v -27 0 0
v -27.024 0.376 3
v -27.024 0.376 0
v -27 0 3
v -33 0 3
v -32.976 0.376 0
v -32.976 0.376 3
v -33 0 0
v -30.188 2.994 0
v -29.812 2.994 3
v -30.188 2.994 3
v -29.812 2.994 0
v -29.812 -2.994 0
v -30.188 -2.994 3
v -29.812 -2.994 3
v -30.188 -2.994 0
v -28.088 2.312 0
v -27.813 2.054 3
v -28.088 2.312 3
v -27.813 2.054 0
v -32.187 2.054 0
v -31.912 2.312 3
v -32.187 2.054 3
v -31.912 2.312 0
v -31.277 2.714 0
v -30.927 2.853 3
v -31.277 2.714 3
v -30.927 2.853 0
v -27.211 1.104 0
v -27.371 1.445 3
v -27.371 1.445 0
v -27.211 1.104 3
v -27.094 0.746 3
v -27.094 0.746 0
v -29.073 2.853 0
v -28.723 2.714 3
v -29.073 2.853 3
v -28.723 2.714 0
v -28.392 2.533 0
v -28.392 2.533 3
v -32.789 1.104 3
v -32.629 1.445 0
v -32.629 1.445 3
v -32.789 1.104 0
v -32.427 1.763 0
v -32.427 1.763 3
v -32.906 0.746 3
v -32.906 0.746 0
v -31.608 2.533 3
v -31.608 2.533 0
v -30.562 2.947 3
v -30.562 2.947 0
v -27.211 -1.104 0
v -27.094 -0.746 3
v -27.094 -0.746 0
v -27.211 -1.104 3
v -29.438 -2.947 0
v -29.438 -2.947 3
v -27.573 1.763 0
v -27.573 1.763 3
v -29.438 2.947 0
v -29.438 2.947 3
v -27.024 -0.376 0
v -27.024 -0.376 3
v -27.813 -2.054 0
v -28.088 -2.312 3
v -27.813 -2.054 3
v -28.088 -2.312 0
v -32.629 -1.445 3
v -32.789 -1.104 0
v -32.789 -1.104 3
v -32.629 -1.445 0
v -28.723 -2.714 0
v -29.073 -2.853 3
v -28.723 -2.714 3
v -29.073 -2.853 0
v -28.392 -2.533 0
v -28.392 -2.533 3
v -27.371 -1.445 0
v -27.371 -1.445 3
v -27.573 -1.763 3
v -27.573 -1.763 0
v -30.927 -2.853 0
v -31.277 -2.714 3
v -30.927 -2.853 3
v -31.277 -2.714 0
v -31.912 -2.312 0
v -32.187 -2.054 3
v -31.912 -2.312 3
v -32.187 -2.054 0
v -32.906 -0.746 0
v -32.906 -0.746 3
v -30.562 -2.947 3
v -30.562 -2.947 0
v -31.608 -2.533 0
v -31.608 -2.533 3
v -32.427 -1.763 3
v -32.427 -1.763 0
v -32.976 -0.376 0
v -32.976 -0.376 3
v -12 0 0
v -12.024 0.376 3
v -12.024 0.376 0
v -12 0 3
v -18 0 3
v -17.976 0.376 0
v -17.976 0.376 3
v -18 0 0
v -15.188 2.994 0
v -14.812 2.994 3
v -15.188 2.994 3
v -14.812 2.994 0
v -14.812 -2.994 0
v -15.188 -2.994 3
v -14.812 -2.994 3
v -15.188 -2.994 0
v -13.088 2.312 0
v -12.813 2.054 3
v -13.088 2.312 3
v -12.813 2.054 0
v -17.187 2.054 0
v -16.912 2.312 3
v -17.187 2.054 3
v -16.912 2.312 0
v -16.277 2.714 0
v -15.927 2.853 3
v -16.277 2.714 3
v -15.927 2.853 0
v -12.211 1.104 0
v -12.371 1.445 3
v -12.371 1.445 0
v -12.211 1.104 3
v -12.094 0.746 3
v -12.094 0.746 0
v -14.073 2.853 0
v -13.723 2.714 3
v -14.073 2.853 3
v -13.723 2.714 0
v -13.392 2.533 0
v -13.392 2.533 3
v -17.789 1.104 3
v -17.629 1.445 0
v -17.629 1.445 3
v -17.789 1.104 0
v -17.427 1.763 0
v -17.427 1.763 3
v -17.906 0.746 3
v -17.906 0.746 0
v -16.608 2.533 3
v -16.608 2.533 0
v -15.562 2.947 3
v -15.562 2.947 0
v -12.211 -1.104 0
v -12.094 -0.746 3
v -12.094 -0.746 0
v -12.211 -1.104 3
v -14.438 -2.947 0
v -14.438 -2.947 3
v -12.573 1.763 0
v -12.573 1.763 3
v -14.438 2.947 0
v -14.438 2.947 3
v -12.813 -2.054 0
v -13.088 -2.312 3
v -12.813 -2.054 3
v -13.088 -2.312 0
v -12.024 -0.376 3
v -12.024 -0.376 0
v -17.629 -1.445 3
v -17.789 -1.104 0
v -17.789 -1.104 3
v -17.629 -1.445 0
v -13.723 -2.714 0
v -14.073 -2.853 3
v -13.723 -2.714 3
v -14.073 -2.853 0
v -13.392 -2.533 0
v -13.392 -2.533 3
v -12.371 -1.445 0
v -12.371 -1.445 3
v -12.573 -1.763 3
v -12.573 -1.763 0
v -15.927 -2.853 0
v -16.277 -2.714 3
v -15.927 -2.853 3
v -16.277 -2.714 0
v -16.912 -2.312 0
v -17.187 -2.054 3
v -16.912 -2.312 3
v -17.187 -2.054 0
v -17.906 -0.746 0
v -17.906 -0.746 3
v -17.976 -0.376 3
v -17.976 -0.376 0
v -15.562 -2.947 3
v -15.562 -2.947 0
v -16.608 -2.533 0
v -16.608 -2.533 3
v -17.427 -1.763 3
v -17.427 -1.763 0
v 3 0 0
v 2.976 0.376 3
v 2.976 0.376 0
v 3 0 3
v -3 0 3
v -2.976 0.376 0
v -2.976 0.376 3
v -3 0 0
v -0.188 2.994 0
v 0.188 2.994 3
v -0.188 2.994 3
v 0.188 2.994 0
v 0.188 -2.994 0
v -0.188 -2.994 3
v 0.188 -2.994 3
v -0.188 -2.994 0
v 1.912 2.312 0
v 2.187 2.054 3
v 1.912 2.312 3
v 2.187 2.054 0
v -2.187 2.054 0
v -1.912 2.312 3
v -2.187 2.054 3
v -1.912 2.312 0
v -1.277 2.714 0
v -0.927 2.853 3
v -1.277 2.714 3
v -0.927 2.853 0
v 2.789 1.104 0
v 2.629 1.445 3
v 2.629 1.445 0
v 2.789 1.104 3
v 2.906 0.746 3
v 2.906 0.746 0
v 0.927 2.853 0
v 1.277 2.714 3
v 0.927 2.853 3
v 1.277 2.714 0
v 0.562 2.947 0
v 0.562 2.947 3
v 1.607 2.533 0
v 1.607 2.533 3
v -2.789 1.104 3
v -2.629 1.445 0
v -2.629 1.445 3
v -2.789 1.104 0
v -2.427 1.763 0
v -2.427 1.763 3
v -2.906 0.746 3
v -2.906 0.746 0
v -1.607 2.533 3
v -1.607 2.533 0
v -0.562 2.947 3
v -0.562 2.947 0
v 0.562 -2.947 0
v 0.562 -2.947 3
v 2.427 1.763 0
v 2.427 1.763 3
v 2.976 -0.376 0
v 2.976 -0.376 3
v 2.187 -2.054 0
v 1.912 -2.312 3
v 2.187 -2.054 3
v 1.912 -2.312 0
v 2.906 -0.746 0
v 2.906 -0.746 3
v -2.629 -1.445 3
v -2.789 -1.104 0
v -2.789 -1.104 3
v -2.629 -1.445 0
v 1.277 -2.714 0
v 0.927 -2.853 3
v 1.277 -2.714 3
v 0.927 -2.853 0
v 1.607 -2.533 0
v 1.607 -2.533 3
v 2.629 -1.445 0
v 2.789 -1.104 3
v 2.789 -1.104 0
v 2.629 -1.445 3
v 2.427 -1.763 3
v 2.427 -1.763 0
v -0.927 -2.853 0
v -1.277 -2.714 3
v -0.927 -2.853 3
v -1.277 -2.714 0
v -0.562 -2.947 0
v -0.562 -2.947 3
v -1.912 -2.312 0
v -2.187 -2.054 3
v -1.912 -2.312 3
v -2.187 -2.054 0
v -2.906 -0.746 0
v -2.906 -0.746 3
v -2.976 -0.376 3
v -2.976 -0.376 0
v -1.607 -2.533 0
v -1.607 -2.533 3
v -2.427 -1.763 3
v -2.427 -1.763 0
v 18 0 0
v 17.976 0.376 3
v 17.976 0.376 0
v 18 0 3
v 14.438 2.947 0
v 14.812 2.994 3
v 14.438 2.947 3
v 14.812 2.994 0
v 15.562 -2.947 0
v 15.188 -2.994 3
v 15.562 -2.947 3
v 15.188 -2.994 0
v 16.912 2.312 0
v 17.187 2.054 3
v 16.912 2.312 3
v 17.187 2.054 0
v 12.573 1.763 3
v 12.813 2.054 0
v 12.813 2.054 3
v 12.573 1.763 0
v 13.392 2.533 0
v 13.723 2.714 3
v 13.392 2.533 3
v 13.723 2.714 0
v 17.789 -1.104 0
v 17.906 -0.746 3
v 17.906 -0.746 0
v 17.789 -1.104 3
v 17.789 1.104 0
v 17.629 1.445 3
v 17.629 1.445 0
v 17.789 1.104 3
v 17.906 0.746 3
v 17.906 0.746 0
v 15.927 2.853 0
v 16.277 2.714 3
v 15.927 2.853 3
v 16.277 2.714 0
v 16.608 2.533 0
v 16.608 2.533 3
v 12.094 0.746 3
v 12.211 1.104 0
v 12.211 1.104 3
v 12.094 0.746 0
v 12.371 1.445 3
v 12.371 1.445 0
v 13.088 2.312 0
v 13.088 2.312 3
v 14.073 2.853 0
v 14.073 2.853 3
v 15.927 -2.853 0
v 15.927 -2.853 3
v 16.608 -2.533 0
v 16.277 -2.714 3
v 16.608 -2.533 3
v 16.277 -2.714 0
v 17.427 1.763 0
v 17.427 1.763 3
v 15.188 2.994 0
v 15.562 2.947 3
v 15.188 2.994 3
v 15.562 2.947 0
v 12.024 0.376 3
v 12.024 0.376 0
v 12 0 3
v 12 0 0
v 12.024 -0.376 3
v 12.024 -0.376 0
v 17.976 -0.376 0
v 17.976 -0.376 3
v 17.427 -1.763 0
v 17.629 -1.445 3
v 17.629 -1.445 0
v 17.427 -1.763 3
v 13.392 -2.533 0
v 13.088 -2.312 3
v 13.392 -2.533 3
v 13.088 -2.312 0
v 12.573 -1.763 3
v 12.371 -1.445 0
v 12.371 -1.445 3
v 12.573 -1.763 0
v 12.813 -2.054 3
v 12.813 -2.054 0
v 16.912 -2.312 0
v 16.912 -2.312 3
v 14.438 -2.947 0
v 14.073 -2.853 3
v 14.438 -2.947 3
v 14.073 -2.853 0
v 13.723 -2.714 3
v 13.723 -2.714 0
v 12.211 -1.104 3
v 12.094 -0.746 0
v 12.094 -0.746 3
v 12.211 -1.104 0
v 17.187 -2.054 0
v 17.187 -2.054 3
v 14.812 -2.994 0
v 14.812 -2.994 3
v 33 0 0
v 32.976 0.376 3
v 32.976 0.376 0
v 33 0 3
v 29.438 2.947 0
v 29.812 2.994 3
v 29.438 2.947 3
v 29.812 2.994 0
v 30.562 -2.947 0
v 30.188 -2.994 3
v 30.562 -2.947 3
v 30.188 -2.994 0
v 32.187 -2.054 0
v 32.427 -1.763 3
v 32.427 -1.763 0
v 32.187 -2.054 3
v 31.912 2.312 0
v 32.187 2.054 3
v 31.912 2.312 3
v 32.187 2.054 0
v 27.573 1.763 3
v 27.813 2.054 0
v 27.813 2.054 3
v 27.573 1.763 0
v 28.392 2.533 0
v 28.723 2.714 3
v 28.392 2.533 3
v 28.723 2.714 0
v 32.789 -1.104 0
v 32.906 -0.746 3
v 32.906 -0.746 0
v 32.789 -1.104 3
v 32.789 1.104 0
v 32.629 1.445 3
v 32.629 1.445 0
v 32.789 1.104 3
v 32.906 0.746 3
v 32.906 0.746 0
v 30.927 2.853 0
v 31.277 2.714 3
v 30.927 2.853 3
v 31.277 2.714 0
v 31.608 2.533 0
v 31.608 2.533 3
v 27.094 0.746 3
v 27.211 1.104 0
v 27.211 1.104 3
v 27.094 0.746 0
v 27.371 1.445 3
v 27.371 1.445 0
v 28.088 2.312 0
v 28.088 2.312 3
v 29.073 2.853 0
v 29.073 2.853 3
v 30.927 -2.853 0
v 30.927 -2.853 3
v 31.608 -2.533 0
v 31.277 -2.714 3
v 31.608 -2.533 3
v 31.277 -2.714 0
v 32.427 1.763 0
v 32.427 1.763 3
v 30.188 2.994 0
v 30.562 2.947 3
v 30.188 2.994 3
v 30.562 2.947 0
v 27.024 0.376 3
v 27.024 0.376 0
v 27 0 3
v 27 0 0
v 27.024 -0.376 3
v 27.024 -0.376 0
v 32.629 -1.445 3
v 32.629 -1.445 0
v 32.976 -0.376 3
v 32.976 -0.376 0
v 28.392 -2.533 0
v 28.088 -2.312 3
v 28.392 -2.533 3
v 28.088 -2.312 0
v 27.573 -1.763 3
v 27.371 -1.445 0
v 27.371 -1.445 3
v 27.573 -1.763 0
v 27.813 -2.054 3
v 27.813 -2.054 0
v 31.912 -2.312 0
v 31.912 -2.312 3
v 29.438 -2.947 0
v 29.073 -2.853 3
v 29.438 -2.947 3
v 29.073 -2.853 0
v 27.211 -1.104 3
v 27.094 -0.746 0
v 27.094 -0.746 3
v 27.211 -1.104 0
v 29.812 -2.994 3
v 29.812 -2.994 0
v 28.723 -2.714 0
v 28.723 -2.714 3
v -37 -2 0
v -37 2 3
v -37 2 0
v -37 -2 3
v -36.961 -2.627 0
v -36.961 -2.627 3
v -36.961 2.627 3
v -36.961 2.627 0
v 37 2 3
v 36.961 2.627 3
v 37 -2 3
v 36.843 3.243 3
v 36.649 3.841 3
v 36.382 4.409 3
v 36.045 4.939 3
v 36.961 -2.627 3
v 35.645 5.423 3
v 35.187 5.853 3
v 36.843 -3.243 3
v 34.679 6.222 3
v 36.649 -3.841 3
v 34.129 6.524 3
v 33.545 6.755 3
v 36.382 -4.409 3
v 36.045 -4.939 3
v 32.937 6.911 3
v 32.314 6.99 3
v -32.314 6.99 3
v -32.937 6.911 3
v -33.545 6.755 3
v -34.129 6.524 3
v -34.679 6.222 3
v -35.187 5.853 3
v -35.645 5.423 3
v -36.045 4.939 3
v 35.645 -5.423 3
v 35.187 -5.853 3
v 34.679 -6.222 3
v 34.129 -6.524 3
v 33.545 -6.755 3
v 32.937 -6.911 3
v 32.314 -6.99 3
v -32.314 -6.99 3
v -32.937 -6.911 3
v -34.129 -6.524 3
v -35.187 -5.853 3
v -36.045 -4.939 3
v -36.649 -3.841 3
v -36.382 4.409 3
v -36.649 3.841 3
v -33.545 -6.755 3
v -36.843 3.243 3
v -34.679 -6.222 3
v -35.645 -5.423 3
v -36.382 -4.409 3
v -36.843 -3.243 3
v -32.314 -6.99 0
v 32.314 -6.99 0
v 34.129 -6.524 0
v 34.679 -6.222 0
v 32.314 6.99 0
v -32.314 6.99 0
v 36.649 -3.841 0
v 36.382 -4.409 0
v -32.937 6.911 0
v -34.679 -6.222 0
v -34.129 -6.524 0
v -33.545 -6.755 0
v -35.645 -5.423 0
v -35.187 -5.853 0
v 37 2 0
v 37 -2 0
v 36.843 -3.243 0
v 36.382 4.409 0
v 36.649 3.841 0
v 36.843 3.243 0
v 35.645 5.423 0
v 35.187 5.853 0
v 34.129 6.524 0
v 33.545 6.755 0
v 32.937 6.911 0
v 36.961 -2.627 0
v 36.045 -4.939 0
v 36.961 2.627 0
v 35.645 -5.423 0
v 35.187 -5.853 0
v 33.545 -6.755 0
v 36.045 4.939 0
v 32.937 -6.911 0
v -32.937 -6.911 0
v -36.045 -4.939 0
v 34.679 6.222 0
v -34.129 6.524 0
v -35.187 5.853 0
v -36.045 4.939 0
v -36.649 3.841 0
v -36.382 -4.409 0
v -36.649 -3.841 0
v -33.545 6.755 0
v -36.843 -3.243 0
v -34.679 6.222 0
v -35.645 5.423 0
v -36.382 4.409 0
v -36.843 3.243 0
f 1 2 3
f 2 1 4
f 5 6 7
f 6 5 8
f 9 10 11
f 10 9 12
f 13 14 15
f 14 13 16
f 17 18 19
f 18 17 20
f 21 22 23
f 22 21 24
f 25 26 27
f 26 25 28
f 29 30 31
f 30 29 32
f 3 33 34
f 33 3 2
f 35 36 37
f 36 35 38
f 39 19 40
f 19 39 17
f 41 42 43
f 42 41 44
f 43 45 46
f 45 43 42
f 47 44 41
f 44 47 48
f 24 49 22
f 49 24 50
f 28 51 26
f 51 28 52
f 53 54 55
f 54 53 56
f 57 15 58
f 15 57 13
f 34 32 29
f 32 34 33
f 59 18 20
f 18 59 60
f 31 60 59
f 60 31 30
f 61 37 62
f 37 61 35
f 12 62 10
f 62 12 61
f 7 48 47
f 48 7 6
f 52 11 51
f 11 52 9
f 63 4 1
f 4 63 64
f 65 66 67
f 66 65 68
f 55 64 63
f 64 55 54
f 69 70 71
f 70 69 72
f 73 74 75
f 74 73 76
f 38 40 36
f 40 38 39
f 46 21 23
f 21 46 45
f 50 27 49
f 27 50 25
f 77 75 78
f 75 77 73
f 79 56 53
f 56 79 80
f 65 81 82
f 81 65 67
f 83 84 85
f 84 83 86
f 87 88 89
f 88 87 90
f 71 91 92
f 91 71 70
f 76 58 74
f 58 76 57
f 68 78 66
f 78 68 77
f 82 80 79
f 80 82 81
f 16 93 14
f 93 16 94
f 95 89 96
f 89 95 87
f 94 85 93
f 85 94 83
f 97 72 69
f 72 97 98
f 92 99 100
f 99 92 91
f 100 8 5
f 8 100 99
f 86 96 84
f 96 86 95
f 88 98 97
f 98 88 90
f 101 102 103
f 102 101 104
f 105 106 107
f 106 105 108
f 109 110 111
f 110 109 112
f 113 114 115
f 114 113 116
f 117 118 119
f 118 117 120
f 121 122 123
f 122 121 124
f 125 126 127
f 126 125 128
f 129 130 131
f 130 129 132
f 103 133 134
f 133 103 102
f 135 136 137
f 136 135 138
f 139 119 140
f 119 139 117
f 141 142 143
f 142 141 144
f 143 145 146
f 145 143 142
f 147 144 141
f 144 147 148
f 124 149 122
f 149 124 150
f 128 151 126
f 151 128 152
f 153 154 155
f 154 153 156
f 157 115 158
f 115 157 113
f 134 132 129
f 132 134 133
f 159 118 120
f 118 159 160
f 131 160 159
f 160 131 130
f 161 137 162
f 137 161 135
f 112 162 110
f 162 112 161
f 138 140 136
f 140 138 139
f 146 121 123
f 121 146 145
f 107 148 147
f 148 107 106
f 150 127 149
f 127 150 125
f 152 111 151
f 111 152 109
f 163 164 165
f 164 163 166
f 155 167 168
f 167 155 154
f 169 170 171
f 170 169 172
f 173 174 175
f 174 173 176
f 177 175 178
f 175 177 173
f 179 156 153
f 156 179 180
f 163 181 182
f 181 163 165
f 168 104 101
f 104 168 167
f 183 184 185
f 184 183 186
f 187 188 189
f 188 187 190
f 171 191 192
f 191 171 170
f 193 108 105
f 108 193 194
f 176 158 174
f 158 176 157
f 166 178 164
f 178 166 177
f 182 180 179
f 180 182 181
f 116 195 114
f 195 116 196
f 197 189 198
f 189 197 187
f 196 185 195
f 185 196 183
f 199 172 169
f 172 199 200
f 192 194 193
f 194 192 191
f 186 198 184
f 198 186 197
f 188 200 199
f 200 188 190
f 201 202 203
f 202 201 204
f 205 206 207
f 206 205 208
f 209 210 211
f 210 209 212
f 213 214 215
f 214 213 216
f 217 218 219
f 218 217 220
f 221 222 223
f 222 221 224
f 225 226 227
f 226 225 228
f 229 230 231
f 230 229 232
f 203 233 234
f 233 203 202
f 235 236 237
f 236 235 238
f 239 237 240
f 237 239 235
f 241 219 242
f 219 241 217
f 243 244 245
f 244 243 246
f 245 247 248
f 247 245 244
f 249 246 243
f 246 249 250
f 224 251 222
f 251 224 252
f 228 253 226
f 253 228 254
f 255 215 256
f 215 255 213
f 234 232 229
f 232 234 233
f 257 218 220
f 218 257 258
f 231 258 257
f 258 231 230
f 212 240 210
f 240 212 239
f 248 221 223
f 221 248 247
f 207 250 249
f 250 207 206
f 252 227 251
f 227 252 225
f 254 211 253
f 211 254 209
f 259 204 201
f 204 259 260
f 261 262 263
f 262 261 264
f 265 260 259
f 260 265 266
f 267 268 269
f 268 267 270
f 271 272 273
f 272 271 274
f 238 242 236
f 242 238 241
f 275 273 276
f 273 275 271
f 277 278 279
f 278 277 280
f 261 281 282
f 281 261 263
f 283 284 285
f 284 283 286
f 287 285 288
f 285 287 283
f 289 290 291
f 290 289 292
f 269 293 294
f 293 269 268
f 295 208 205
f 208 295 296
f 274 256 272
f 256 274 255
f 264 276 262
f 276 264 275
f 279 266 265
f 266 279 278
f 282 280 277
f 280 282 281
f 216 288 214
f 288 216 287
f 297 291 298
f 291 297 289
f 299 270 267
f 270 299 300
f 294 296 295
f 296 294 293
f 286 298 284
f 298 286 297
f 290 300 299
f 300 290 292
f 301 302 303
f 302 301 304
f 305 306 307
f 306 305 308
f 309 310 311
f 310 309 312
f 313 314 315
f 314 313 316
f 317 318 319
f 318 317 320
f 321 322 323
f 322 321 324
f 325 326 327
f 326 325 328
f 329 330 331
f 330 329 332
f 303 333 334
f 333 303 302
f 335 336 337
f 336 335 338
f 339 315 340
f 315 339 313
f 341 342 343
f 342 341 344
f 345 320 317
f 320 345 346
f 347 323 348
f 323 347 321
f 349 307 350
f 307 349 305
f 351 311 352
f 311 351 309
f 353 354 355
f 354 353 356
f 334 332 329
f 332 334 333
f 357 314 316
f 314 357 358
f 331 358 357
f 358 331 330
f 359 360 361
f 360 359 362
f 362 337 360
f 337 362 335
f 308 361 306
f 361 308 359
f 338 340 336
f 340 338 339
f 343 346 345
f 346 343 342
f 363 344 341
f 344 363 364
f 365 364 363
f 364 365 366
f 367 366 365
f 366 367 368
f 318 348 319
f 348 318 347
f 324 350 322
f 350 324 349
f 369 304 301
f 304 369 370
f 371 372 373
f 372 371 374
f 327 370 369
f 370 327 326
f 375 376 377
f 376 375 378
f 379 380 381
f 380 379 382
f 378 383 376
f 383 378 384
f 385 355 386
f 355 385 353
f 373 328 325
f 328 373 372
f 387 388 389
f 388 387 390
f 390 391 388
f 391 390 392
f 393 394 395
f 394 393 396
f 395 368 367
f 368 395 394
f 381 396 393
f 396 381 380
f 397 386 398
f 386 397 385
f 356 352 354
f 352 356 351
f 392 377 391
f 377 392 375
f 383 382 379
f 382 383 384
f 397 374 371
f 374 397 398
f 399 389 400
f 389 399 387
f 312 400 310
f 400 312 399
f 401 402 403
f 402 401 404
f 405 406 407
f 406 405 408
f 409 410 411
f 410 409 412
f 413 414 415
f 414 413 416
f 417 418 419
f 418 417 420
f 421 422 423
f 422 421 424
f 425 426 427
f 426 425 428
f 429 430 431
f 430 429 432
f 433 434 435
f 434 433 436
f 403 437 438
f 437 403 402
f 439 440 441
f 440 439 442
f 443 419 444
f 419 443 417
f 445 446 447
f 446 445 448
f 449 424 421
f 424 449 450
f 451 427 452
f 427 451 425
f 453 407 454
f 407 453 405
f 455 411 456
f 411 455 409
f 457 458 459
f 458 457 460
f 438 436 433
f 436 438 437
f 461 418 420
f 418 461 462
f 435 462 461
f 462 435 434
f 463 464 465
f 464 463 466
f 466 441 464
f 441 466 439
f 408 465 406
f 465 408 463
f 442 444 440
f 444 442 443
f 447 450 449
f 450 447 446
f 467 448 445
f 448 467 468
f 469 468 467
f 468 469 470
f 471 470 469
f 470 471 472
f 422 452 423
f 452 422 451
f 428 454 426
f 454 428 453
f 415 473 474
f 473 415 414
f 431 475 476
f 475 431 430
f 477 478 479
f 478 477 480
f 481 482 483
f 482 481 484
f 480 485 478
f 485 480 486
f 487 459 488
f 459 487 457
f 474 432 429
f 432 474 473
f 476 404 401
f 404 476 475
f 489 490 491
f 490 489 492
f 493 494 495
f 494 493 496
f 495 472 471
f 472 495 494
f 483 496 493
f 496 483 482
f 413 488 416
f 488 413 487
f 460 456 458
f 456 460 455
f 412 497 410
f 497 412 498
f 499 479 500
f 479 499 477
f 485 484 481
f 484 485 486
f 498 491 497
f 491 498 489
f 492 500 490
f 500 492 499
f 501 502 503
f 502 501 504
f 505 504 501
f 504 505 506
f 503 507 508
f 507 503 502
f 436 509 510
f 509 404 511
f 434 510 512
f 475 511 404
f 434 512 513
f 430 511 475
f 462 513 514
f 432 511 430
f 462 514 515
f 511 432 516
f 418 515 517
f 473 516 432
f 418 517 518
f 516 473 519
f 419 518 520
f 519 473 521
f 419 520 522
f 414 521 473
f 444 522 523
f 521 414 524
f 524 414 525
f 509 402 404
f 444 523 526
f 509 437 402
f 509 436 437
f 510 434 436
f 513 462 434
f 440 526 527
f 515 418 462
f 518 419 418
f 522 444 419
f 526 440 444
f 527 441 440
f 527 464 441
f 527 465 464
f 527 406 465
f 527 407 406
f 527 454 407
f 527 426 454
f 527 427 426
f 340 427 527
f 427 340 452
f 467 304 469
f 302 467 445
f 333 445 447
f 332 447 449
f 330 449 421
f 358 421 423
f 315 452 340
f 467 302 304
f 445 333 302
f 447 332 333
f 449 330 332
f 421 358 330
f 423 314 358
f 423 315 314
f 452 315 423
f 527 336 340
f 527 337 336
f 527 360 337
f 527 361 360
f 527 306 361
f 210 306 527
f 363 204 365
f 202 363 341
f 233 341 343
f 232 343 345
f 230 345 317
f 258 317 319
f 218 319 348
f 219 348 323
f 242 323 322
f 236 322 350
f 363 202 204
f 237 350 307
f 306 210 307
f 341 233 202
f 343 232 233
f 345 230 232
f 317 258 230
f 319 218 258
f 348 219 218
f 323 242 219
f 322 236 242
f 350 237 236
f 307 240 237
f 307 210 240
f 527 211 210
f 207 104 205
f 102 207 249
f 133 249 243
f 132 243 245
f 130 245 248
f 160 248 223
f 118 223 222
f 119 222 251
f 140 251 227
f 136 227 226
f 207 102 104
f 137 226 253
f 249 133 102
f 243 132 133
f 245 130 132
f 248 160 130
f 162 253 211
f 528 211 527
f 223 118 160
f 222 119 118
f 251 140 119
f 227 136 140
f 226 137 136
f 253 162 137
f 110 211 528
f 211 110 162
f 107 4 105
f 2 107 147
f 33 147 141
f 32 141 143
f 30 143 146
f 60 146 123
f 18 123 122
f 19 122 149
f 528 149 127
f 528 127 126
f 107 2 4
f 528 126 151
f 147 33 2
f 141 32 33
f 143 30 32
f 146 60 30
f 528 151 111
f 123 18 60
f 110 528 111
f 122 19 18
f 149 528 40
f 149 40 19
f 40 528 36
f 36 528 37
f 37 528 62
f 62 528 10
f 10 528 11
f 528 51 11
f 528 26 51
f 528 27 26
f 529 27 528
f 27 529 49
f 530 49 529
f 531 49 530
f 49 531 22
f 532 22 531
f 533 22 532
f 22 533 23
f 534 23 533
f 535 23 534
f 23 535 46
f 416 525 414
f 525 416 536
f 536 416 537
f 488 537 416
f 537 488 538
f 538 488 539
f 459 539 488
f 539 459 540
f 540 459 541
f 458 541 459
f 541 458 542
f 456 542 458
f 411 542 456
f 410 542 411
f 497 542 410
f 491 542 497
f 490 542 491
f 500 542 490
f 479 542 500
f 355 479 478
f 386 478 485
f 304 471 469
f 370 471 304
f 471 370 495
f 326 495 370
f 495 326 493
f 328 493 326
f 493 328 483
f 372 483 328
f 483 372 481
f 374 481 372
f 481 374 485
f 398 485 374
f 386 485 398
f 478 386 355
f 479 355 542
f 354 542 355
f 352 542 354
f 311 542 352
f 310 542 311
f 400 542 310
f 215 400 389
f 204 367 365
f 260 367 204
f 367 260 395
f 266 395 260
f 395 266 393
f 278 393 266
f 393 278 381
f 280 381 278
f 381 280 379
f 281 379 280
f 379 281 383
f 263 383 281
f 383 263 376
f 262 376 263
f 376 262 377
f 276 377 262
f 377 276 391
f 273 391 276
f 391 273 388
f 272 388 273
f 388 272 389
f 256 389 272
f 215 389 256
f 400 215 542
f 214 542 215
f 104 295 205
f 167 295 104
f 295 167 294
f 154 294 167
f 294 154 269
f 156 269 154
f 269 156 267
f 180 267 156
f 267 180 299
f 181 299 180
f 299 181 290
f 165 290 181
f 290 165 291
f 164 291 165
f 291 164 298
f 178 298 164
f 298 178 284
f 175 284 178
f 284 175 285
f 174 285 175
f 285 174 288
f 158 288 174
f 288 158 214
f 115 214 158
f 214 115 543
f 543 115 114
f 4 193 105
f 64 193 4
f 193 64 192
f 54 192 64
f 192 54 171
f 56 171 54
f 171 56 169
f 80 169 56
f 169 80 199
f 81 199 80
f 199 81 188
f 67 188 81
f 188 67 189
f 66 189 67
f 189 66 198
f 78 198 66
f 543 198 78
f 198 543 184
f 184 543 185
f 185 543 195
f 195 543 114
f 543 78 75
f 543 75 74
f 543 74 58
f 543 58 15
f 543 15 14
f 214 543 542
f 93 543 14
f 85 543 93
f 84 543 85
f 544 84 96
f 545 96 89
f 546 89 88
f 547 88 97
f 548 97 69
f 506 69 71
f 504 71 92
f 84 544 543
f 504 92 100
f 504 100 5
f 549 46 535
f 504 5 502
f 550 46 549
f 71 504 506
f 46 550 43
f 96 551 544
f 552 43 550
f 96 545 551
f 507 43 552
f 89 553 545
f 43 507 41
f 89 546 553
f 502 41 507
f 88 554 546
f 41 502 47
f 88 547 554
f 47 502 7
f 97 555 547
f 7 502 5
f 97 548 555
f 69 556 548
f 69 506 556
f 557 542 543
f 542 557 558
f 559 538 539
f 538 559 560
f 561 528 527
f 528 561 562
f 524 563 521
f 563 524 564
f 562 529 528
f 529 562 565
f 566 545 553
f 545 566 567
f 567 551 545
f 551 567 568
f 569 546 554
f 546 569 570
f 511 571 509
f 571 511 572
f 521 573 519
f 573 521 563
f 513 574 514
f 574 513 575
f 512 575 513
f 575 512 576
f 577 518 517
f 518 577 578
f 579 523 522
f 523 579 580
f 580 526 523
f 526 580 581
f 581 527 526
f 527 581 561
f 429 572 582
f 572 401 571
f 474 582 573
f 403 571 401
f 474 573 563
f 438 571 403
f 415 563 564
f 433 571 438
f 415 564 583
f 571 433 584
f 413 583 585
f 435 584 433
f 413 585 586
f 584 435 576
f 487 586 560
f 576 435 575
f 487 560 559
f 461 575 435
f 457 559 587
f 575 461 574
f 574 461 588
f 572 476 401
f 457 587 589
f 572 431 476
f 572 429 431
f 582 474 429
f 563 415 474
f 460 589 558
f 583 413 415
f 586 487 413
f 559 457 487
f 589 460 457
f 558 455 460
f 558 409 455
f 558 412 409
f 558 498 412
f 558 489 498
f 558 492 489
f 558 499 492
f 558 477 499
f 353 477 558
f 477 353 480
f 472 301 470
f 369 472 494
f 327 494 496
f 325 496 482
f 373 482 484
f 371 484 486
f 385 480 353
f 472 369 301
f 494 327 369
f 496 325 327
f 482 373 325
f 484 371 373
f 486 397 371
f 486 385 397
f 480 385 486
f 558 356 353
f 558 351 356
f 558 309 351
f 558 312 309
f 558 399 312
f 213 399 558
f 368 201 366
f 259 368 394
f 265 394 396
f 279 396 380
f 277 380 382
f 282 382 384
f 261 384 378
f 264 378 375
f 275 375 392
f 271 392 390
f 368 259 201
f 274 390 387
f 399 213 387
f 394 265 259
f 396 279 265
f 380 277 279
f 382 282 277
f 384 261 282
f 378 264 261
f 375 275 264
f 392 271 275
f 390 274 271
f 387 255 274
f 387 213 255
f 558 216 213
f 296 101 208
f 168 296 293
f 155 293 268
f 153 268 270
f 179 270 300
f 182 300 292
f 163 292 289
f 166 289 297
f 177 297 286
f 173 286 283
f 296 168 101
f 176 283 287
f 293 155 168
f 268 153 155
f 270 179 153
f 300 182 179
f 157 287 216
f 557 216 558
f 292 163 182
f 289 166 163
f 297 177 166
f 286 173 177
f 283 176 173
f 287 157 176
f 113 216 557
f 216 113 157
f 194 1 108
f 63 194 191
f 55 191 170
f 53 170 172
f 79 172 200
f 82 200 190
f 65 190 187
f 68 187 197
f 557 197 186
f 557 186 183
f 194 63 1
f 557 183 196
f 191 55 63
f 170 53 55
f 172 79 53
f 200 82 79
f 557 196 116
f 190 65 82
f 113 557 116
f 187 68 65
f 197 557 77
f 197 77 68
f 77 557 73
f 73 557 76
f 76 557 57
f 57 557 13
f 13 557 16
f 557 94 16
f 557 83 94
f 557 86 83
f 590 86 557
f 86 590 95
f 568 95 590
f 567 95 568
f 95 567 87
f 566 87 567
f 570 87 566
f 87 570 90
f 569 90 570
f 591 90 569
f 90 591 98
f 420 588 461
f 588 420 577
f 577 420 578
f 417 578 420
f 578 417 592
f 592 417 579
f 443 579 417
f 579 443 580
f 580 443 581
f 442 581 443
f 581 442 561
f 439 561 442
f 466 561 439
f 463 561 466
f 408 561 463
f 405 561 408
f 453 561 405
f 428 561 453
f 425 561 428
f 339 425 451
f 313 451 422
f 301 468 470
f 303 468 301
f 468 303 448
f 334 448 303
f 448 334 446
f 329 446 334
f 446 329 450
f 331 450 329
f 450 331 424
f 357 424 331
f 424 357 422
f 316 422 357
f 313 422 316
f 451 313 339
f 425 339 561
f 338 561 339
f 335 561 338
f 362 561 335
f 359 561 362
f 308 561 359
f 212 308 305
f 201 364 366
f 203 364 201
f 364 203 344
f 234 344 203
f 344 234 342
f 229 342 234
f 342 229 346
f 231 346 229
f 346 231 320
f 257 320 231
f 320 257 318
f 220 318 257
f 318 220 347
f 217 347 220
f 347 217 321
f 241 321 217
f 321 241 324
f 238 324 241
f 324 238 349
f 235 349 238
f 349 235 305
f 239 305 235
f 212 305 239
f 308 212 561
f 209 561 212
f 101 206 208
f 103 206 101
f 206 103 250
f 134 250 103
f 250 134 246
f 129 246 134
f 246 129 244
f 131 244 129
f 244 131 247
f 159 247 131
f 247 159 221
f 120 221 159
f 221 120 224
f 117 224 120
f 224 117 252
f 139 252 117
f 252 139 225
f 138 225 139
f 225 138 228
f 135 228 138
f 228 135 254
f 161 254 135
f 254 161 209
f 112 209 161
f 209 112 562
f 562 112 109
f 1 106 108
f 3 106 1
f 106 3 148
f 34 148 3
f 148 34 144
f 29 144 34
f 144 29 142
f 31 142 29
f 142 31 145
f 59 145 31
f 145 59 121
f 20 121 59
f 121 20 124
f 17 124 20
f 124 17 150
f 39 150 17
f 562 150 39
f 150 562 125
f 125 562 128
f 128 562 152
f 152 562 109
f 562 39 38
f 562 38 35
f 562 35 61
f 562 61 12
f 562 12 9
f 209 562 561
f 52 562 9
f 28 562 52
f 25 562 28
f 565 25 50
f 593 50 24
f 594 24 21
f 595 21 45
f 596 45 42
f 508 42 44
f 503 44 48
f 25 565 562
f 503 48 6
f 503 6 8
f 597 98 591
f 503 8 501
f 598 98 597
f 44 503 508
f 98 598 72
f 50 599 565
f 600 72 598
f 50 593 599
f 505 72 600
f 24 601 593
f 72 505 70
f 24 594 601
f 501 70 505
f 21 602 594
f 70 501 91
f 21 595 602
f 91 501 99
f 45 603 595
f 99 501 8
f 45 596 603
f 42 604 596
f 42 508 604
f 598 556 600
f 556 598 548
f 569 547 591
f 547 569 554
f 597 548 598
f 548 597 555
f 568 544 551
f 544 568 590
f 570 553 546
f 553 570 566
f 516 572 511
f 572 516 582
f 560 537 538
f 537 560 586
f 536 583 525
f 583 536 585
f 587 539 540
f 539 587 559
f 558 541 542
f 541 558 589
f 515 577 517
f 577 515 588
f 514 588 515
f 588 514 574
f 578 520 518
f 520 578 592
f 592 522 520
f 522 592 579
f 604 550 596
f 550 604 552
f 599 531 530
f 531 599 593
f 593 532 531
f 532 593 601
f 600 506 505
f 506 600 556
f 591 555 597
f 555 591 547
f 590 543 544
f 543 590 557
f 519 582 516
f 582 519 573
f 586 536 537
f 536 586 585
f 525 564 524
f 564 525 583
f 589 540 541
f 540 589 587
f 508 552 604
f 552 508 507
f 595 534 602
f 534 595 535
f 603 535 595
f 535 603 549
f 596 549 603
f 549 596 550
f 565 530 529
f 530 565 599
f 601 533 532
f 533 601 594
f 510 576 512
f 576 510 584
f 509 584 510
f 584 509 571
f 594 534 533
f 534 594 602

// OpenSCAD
$fn = 50;


difference() {
	union() {
		hull() {
			translate(v = [-32.0000000000, 2.0000000000, 0]) {
				cylinder(h = 3, r = 5);
			}
			translate(v = [32.0000000000, 2.0000000000, 0]) {
				cylinder(h = 3, r = 5);
			}
			translate(v = [-32.0000000000, -2.0000000000, 0]) {
				cylinder(h = 3, r = 5);
			}
			translate(v = [32.0000000000, -2.0000000000, 0]) {
				cylinder(h = 3, r = 5);
			}
		}
	}
	union() {
		translate(v = [-30.0000000000, 0.0000000000, 0]) {
			translate(v = [0, 0, -100]) {
				cylinder(h = 200, r = 3.0000000000);
			}
		}
		translate(v = [-15.0000000000, 0.0000000000, 0]) {
			translate(v = [0, 0, -100]) {
				cylinder(h = 200, r = 3.0000000000);
			}
		}
		translate(v = [0, 0, -100]) {
			cylinder(h = 200, r = 3.0000000000);
		}
		translate(v = [15.0000000000, 0.0000000000, 0]) {
			translate(v = [0, 0, -100]) {
				cylinder(h = 200, r = 3.0000000000);
			}
		}
		translate(v = [30.0000000000, 0.0000000000, 0]) {
			translate(v = [0, 0, -100]) {
				cylinder(h = 200, r = 3.0000000000);
			}
		}
	}
}
